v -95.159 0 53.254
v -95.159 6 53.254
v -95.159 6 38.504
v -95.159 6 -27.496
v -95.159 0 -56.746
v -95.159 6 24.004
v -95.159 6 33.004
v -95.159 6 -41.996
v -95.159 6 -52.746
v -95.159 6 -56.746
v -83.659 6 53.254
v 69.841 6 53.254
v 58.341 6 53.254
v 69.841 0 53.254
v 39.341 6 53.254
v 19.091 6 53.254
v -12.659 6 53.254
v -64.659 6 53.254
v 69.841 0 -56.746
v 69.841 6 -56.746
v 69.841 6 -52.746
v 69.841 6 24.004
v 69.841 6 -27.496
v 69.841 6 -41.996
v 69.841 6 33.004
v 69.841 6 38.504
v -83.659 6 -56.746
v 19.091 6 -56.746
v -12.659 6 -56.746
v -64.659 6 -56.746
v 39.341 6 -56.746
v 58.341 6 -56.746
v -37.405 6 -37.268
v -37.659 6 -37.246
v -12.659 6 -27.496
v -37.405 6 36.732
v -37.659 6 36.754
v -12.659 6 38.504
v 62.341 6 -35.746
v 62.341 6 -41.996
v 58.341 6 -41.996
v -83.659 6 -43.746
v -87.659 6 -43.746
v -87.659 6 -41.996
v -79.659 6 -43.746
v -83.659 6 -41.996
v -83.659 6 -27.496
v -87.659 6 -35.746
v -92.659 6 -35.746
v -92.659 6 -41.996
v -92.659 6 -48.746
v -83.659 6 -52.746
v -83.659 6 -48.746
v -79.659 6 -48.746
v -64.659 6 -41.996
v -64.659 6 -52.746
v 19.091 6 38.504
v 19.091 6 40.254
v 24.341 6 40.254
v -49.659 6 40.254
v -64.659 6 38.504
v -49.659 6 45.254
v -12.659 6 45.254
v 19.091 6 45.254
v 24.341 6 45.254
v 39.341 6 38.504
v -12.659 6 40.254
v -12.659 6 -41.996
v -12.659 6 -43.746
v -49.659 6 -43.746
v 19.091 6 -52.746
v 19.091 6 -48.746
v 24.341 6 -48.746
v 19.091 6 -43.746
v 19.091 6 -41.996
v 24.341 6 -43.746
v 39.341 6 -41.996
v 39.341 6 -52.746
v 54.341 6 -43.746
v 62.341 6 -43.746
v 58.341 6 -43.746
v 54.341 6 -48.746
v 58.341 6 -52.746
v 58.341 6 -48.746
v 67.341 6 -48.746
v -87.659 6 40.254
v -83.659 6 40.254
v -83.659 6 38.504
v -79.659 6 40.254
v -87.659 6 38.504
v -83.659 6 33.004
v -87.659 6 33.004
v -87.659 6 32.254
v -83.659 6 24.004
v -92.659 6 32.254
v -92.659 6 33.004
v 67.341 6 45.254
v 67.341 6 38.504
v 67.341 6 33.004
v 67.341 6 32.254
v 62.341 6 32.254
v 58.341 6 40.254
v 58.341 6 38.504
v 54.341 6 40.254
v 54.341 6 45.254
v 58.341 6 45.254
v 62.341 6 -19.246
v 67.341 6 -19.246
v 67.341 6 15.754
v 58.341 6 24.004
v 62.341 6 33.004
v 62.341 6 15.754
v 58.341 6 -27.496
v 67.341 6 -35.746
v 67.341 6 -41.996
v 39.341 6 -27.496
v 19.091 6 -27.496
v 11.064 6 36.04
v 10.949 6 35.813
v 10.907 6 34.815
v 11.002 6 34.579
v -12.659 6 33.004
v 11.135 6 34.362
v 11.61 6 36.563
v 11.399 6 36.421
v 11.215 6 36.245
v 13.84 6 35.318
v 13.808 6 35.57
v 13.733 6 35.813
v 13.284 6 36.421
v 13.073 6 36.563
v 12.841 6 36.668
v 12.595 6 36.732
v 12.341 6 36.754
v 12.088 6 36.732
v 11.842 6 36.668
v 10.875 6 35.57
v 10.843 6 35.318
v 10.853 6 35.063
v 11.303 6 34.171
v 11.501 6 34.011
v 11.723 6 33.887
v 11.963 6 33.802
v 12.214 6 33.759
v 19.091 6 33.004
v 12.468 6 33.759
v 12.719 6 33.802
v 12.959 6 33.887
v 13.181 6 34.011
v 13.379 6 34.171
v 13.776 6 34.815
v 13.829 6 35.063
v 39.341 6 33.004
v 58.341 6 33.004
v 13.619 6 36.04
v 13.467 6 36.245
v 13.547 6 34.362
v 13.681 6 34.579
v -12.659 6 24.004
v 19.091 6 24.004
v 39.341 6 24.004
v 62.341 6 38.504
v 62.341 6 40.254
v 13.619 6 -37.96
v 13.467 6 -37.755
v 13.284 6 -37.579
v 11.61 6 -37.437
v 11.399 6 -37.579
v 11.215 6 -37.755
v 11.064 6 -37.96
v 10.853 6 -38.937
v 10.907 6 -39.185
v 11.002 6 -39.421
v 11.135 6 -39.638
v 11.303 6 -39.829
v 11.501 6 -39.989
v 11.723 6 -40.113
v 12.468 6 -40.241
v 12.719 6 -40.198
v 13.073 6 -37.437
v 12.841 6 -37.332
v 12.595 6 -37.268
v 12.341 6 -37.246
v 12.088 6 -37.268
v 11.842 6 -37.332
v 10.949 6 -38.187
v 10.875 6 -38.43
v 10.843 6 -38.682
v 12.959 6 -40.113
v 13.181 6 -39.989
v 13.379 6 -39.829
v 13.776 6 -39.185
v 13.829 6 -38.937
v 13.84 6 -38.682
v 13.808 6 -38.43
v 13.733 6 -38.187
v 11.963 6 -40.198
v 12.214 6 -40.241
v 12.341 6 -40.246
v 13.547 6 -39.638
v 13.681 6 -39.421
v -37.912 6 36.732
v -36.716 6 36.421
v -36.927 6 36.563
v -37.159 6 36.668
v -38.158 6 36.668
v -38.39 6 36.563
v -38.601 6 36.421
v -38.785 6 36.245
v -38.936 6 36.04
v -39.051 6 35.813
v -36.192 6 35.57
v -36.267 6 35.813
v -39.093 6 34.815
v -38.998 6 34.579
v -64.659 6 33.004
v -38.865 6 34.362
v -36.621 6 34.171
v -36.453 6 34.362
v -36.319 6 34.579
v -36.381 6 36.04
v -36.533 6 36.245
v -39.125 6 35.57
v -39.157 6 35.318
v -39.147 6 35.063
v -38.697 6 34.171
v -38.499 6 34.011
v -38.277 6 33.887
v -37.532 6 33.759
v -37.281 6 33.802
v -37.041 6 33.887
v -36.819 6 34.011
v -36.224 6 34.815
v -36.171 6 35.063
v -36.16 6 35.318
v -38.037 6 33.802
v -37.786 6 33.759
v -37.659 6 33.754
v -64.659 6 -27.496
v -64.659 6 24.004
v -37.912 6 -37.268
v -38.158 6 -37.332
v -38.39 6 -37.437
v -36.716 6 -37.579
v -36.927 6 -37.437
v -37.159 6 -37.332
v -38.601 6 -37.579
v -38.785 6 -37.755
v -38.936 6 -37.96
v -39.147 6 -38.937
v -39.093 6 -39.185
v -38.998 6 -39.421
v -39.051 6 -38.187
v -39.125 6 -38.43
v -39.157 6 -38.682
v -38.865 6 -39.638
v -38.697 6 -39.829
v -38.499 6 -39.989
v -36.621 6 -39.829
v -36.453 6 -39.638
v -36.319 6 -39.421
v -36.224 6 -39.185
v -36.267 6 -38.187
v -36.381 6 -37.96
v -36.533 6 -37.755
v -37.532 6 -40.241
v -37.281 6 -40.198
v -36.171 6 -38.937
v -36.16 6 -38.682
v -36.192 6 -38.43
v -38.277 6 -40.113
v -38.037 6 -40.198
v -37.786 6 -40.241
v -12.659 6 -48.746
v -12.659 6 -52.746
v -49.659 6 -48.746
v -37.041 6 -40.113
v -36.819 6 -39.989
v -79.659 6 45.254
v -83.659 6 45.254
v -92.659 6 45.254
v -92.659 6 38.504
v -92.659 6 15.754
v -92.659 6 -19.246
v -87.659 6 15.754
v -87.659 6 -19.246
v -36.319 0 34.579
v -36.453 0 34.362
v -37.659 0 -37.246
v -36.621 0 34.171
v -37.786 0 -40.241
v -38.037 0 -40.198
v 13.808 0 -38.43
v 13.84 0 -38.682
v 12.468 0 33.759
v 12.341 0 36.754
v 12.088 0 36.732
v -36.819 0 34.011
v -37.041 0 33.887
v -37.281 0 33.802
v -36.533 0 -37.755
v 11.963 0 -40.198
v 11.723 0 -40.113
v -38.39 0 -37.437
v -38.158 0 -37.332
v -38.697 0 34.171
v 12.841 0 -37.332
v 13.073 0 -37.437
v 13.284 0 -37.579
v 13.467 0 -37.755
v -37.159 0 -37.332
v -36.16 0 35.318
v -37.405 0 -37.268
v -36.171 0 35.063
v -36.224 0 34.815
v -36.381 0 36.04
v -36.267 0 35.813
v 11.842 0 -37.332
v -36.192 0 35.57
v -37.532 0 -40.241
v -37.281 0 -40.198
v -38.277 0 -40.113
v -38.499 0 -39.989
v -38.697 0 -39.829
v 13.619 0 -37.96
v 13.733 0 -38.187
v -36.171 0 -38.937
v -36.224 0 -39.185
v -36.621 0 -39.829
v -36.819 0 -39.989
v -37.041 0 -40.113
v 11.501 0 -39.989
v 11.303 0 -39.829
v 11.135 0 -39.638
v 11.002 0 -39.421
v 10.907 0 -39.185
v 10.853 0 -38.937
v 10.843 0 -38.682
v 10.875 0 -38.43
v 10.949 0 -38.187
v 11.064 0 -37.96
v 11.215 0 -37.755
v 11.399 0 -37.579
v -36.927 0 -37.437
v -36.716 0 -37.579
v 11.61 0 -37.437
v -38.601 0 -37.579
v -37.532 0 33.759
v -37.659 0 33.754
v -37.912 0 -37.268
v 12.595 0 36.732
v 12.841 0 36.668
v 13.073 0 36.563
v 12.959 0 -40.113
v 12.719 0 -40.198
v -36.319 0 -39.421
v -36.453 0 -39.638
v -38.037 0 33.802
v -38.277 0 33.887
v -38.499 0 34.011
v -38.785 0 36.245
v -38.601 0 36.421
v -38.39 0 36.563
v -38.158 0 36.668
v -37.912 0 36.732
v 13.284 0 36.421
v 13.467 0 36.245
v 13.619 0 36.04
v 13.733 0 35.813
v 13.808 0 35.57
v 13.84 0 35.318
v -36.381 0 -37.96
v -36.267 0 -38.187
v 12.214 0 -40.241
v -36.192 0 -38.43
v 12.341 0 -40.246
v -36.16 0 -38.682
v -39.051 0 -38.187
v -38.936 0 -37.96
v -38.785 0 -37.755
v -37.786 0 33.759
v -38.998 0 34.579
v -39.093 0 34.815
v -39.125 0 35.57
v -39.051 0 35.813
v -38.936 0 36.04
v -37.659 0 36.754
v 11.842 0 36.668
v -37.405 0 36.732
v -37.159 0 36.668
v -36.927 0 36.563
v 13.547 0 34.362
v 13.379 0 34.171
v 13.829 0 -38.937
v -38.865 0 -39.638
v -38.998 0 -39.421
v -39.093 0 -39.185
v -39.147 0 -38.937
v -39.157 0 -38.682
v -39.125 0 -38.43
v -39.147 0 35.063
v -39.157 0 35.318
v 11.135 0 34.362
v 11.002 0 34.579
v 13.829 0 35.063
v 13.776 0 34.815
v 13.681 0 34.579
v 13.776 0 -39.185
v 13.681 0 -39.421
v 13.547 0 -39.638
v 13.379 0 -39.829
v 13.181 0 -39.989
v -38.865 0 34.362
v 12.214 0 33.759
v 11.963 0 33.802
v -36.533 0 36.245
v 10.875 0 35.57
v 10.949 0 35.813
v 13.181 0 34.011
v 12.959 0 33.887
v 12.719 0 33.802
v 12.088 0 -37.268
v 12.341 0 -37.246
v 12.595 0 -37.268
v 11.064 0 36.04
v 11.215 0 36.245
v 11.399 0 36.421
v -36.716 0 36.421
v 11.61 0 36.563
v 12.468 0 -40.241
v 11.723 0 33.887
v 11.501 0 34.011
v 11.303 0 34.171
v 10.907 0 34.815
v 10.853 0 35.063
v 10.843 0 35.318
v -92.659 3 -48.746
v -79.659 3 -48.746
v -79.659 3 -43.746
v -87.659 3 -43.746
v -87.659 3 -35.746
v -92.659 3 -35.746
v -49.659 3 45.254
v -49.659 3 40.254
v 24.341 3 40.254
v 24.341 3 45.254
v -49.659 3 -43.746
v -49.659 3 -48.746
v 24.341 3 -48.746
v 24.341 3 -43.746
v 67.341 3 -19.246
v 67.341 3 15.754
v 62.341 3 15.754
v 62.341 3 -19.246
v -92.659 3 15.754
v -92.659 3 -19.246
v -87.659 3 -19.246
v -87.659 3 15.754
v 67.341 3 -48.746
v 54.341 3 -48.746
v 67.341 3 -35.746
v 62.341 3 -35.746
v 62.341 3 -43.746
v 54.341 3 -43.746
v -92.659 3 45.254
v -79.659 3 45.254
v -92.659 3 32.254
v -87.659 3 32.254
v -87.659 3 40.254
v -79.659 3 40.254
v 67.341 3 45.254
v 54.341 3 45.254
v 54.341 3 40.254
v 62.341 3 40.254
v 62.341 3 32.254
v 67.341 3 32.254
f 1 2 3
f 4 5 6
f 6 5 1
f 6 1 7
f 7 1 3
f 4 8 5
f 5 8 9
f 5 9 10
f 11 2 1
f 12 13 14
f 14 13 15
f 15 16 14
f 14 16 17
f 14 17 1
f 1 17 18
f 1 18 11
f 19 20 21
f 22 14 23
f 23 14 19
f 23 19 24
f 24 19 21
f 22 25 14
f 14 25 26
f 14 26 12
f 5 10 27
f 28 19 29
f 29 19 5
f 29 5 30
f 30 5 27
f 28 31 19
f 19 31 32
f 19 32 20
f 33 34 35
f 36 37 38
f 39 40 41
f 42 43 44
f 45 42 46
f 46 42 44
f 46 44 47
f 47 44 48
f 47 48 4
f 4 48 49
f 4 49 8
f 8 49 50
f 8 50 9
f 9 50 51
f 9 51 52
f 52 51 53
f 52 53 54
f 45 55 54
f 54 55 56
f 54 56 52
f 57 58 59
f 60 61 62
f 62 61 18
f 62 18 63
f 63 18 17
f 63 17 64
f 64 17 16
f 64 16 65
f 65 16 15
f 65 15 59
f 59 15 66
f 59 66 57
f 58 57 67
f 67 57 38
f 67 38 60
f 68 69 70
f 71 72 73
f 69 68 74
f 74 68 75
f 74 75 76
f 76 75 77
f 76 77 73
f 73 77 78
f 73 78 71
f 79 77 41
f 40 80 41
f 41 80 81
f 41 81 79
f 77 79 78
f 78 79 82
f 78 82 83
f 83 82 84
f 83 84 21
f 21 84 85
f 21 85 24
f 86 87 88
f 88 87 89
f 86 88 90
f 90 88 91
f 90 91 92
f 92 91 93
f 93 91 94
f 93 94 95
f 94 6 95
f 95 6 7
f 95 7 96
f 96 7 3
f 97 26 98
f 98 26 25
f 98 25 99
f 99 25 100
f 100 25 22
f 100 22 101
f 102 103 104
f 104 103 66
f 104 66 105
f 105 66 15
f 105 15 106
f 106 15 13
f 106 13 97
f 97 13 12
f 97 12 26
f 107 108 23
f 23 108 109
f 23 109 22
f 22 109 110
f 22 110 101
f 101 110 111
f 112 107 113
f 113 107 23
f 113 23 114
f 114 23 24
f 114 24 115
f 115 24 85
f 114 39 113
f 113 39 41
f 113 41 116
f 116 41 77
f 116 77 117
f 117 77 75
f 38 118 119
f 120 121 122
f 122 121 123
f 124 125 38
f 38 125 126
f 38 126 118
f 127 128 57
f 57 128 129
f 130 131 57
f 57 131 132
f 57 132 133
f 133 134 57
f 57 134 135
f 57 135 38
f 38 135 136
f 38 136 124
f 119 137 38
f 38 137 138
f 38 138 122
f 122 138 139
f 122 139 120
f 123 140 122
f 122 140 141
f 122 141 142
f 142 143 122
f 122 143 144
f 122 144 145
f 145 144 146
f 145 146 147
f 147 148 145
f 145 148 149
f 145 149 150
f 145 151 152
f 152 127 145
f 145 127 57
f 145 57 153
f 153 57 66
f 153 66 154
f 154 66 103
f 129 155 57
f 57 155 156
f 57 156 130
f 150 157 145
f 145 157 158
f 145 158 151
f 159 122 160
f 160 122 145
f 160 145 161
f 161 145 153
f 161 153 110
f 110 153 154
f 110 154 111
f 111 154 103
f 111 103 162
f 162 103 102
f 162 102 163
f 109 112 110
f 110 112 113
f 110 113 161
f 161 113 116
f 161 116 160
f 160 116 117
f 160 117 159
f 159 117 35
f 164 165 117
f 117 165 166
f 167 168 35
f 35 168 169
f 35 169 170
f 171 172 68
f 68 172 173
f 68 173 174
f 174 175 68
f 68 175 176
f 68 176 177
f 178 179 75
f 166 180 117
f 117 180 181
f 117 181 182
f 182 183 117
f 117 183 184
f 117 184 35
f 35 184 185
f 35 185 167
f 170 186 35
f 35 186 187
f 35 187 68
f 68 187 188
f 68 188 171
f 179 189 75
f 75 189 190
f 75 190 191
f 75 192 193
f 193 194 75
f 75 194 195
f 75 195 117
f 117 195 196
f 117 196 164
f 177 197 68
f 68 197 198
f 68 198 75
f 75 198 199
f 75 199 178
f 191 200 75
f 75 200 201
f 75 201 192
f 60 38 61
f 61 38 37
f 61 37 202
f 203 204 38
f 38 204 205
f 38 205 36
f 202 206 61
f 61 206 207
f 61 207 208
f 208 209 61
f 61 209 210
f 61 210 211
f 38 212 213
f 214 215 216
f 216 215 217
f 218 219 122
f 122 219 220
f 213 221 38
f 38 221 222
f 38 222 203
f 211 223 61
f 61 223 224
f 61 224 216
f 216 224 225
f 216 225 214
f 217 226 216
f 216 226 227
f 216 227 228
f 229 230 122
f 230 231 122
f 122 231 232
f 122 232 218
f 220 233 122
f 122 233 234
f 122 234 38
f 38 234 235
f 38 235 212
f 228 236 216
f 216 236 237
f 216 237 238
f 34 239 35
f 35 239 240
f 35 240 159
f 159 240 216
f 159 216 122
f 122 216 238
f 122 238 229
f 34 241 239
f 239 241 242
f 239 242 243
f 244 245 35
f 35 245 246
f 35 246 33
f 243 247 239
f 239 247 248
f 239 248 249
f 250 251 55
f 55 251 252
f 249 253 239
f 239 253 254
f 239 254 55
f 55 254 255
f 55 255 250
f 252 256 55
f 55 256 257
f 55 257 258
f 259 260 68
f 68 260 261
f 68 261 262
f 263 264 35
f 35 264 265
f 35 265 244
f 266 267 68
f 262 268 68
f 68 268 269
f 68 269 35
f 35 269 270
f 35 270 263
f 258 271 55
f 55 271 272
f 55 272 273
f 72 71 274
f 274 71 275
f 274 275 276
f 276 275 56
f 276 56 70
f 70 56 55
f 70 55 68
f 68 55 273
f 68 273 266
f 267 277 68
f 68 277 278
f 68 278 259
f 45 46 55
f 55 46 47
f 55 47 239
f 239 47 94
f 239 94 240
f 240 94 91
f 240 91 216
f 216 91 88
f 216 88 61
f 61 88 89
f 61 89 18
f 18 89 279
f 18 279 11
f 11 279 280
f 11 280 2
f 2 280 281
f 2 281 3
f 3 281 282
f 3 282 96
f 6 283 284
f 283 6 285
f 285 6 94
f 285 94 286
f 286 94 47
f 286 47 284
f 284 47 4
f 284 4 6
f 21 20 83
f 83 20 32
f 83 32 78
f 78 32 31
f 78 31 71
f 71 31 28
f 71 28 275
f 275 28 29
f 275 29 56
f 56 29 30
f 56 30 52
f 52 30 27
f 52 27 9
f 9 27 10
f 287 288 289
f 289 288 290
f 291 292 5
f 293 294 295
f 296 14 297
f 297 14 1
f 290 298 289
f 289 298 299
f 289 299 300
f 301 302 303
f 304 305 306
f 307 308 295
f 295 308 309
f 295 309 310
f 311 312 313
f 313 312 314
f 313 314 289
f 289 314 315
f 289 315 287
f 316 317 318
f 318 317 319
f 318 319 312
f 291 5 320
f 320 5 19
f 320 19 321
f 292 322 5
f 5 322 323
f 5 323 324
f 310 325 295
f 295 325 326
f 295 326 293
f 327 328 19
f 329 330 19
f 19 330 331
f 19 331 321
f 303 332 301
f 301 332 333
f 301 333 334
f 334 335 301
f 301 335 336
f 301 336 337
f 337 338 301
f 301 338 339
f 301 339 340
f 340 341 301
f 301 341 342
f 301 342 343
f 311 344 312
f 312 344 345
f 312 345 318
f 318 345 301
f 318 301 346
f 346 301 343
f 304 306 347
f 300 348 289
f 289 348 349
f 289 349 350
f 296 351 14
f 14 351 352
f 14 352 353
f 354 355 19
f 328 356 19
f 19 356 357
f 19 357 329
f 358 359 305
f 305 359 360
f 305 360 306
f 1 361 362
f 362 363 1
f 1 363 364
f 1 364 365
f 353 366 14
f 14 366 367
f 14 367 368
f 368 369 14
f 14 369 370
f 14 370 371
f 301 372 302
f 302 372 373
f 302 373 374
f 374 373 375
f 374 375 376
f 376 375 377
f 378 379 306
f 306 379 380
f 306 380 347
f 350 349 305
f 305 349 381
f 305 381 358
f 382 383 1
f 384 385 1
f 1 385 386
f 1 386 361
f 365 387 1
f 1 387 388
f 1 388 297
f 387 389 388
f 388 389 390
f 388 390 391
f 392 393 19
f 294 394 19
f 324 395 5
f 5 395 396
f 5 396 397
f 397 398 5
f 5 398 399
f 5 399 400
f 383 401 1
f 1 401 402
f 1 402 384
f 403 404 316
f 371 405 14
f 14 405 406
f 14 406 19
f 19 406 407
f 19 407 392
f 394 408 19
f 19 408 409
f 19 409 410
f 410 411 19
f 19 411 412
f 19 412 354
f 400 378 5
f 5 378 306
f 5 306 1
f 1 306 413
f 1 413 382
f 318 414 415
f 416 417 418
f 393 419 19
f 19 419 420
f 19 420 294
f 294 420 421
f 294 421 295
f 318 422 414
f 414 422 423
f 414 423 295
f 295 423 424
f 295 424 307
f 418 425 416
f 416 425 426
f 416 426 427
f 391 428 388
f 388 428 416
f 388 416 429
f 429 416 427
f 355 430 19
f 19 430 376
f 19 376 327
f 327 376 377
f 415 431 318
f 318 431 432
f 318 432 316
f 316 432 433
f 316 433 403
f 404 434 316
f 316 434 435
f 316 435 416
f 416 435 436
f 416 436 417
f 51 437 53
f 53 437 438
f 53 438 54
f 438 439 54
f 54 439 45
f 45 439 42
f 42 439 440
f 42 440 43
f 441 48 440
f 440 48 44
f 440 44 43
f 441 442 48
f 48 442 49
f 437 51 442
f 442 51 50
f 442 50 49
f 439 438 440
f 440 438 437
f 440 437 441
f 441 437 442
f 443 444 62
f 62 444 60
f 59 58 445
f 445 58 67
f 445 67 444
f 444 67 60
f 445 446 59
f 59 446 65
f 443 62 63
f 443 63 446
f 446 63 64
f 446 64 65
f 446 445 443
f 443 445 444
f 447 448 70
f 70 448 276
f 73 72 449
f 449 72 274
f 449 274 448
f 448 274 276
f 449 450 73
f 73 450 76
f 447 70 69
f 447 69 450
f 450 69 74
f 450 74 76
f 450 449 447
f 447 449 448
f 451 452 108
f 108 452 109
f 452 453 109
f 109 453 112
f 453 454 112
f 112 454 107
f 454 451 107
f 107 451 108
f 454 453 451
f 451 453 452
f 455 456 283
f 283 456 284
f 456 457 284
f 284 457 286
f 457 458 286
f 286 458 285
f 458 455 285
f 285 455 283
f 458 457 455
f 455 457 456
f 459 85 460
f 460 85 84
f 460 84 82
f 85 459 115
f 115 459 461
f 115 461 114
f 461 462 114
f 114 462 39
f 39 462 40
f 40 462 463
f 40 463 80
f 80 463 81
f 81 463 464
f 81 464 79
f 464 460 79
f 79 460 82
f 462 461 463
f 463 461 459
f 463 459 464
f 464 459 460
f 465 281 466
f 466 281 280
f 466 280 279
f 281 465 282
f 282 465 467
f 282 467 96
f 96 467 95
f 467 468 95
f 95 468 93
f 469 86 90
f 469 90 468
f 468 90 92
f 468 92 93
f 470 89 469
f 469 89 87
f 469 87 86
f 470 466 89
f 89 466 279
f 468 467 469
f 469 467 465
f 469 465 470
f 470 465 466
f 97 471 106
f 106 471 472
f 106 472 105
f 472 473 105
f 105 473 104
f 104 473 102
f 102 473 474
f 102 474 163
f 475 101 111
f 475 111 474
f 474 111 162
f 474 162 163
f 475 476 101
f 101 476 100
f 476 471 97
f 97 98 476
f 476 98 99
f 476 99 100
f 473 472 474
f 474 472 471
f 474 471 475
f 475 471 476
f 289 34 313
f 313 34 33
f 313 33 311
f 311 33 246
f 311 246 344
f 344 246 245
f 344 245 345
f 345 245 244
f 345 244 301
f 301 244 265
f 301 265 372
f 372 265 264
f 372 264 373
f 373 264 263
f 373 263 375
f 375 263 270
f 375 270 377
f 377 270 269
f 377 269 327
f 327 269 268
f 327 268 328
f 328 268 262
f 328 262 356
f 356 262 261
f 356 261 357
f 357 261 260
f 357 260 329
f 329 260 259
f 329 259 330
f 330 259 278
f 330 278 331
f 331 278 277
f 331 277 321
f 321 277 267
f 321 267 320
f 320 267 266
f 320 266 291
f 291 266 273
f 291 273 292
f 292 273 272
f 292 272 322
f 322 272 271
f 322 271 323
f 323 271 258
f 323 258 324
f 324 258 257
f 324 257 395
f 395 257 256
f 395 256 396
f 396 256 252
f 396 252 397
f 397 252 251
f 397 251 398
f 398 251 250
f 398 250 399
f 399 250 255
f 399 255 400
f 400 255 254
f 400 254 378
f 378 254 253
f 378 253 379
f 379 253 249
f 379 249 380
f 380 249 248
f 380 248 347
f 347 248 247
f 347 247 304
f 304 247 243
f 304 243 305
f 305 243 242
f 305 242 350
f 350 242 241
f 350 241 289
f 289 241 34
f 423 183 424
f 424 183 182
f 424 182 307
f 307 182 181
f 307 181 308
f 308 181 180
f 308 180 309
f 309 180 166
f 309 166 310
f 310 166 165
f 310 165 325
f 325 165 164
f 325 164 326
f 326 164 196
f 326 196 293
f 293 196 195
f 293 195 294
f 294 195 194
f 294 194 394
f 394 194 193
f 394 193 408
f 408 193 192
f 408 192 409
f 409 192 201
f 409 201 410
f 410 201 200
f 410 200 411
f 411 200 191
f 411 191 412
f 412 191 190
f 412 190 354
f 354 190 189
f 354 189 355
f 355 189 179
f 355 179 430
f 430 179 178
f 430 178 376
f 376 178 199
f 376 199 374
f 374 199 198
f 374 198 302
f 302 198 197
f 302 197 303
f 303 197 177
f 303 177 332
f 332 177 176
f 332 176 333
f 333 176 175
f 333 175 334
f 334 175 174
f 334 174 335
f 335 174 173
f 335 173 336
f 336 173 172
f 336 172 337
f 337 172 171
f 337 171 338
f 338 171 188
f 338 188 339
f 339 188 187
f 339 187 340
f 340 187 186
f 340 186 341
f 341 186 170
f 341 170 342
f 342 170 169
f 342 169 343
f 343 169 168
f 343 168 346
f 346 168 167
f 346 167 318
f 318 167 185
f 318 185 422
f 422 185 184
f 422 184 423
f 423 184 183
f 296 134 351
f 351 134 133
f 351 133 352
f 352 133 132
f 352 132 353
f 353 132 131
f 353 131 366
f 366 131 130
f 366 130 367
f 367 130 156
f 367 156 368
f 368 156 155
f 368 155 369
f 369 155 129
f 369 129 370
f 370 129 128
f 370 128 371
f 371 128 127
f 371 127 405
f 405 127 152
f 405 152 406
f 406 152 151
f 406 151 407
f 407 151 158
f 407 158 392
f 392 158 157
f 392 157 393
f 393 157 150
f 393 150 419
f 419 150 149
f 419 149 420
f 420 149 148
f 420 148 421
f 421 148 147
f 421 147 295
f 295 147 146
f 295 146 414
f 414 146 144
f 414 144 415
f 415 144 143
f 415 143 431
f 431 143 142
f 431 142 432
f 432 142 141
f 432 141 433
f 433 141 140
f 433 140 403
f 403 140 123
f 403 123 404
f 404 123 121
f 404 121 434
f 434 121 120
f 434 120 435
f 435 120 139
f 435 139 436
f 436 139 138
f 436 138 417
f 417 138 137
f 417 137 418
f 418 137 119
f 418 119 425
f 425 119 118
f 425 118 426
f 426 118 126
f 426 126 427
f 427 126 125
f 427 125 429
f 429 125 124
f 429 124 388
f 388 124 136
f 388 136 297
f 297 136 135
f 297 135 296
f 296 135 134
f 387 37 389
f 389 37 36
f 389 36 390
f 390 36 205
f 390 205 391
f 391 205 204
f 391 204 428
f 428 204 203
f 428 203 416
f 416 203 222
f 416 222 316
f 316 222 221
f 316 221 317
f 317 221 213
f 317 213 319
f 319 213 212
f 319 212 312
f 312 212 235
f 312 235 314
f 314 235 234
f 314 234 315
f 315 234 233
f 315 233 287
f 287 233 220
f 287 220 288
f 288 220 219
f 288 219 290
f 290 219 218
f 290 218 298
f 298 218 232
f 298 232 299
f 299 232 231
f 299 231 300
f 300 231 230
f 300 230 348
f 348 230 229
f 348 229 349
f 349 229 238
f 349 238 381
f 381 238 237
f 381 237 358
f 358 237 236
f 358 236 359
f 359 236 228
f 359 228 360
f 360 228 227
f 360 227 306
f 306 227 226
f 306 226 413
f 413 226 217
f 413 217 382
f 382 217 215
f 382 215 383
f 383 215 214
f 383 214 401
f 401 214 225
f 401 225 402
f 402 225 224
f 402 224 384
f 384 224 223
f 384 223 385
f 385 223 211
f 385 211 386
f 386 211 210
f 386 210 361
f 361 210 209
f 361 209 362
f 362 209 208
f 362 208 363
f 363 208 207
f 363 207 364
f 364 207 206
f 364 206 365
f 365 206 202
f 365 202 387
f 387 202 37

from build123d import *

# Parameters (mm, degrees)
SKETCH1_W           = 165
SKETCH1_H           = 110
BOSS_EXTRUDE1_DEPTH = 6
SKETCH2_W           = 5
SKETCH2_H           = 35
SKETCH2_W_2         = 74
SKETCH2_H_2         = 5
CUT_EXTRUDE1_DEPTH  = 3
SKETCH4_R           = 1.5
CUT_EXTRUDE2_DEPTH  = 111.956279878


with BuildPart() as part:
    # Sketch1 → Boss-Extrude1 (new body)
    with BuildSketch(Plane(origin=(0, 0, 0), x_dir=(1, 0, 0), z_dir=(0, 1, 0))):
        with Locations((-12.658730159, 1.746031746)):
            Rectangle(SKETCH1_W, SKETCH1_H)
    extrude(amount=BOSS_EXTRUDE1_DEPTH)

    # Sketch2 → Cut-Extrude1 (cut)
    with BuildSketch(Plane(origin=(0, 6, 0), x_dir=(1, 0, 0), z_dir=(0, 1, 0))):
        Polygon((-92.658730159, 48.746031746), (-92.658730159, 35.746031746), (-87.658730159, 35.746031746), (-87.658730159, 43.746031746), (-79.658730159, 43.746031746), (-79.658730159, 48.746031746), align=None)
        Polygon((-79.658730159, -40.253968254), (-79.658730159, -45.253968254), (-92.658730159, -45.253968254), (-92.658730159, -32.253968254), (-87.658730159, -32.253968254), (-87.658730159, -40.253968254), align=None)
        Polygon((54.341269841, 43.746031746), (54.341269841, 48.746031746), (67.341269841, 48.746031746), (67.341269841, 35.746031746), (62.341269841, 35.746031746), (62.341269841, 43.746031746), align=None)
        Polygon((62.341269841, -40.253968254), (54.341269841, -40.253968254), (54.341269841, -45.253968254), (67.341269841, -45.253968254), (67.341269841, -32.253968254), (62.341269841, -32.253968254), align=None)
        with Locations((64.841269841, 1.746031746)):
            Rectangle(SKETCH2_W, SKETCH2_H)
        with Locations((-90.158730159, 1.746031746)):
            Rectangle(SKETCH2_W, SKETCH2_H)
        with Locations((-12.658730159, -42.753968254)):
            Rectangle(SKETCH2_W_2, SKETCH2_H_2)
        with Locations((-12.658730159, 46.246031746)):
            Rectangle(SKETCH2_W_2, SKETCH2_H_2)
    extrude(amount=-CUT_EXTRUDE1_DEPTH, mode=Mode.SUBTRACT)

    # Sketch4 → Cut-Extrude2 (cut, through all)
    with BuildSketch(Plane(origin=(0, 6, 0), x_dir=(1, 0, 0), z_dir=(0, 1, 0))):
        with Locations(Location((-37.658730159, 38.746031746, 0), (0, 0, 270))):
            Circle(SKETCH4_R)
        with Locations(Location((12.341269841, 38.746031746, 0), (0, 0, 90))):
            Circle(SKETCH4_R)
        with Locations(Location((12.341269841, -35.253968254, 0), (0, 0, 270))):
            Circle(SKETCH4_R)
        with Locations(Location((-37.658730159, -35.253968254, 0), (0, 0, 90))):
            Circle(SKETCH4_R)
    extrude(amount=-CUT_EXTRUDE2_DEPTH, mode=Mode.SUBTRACT)


solid = part.part
